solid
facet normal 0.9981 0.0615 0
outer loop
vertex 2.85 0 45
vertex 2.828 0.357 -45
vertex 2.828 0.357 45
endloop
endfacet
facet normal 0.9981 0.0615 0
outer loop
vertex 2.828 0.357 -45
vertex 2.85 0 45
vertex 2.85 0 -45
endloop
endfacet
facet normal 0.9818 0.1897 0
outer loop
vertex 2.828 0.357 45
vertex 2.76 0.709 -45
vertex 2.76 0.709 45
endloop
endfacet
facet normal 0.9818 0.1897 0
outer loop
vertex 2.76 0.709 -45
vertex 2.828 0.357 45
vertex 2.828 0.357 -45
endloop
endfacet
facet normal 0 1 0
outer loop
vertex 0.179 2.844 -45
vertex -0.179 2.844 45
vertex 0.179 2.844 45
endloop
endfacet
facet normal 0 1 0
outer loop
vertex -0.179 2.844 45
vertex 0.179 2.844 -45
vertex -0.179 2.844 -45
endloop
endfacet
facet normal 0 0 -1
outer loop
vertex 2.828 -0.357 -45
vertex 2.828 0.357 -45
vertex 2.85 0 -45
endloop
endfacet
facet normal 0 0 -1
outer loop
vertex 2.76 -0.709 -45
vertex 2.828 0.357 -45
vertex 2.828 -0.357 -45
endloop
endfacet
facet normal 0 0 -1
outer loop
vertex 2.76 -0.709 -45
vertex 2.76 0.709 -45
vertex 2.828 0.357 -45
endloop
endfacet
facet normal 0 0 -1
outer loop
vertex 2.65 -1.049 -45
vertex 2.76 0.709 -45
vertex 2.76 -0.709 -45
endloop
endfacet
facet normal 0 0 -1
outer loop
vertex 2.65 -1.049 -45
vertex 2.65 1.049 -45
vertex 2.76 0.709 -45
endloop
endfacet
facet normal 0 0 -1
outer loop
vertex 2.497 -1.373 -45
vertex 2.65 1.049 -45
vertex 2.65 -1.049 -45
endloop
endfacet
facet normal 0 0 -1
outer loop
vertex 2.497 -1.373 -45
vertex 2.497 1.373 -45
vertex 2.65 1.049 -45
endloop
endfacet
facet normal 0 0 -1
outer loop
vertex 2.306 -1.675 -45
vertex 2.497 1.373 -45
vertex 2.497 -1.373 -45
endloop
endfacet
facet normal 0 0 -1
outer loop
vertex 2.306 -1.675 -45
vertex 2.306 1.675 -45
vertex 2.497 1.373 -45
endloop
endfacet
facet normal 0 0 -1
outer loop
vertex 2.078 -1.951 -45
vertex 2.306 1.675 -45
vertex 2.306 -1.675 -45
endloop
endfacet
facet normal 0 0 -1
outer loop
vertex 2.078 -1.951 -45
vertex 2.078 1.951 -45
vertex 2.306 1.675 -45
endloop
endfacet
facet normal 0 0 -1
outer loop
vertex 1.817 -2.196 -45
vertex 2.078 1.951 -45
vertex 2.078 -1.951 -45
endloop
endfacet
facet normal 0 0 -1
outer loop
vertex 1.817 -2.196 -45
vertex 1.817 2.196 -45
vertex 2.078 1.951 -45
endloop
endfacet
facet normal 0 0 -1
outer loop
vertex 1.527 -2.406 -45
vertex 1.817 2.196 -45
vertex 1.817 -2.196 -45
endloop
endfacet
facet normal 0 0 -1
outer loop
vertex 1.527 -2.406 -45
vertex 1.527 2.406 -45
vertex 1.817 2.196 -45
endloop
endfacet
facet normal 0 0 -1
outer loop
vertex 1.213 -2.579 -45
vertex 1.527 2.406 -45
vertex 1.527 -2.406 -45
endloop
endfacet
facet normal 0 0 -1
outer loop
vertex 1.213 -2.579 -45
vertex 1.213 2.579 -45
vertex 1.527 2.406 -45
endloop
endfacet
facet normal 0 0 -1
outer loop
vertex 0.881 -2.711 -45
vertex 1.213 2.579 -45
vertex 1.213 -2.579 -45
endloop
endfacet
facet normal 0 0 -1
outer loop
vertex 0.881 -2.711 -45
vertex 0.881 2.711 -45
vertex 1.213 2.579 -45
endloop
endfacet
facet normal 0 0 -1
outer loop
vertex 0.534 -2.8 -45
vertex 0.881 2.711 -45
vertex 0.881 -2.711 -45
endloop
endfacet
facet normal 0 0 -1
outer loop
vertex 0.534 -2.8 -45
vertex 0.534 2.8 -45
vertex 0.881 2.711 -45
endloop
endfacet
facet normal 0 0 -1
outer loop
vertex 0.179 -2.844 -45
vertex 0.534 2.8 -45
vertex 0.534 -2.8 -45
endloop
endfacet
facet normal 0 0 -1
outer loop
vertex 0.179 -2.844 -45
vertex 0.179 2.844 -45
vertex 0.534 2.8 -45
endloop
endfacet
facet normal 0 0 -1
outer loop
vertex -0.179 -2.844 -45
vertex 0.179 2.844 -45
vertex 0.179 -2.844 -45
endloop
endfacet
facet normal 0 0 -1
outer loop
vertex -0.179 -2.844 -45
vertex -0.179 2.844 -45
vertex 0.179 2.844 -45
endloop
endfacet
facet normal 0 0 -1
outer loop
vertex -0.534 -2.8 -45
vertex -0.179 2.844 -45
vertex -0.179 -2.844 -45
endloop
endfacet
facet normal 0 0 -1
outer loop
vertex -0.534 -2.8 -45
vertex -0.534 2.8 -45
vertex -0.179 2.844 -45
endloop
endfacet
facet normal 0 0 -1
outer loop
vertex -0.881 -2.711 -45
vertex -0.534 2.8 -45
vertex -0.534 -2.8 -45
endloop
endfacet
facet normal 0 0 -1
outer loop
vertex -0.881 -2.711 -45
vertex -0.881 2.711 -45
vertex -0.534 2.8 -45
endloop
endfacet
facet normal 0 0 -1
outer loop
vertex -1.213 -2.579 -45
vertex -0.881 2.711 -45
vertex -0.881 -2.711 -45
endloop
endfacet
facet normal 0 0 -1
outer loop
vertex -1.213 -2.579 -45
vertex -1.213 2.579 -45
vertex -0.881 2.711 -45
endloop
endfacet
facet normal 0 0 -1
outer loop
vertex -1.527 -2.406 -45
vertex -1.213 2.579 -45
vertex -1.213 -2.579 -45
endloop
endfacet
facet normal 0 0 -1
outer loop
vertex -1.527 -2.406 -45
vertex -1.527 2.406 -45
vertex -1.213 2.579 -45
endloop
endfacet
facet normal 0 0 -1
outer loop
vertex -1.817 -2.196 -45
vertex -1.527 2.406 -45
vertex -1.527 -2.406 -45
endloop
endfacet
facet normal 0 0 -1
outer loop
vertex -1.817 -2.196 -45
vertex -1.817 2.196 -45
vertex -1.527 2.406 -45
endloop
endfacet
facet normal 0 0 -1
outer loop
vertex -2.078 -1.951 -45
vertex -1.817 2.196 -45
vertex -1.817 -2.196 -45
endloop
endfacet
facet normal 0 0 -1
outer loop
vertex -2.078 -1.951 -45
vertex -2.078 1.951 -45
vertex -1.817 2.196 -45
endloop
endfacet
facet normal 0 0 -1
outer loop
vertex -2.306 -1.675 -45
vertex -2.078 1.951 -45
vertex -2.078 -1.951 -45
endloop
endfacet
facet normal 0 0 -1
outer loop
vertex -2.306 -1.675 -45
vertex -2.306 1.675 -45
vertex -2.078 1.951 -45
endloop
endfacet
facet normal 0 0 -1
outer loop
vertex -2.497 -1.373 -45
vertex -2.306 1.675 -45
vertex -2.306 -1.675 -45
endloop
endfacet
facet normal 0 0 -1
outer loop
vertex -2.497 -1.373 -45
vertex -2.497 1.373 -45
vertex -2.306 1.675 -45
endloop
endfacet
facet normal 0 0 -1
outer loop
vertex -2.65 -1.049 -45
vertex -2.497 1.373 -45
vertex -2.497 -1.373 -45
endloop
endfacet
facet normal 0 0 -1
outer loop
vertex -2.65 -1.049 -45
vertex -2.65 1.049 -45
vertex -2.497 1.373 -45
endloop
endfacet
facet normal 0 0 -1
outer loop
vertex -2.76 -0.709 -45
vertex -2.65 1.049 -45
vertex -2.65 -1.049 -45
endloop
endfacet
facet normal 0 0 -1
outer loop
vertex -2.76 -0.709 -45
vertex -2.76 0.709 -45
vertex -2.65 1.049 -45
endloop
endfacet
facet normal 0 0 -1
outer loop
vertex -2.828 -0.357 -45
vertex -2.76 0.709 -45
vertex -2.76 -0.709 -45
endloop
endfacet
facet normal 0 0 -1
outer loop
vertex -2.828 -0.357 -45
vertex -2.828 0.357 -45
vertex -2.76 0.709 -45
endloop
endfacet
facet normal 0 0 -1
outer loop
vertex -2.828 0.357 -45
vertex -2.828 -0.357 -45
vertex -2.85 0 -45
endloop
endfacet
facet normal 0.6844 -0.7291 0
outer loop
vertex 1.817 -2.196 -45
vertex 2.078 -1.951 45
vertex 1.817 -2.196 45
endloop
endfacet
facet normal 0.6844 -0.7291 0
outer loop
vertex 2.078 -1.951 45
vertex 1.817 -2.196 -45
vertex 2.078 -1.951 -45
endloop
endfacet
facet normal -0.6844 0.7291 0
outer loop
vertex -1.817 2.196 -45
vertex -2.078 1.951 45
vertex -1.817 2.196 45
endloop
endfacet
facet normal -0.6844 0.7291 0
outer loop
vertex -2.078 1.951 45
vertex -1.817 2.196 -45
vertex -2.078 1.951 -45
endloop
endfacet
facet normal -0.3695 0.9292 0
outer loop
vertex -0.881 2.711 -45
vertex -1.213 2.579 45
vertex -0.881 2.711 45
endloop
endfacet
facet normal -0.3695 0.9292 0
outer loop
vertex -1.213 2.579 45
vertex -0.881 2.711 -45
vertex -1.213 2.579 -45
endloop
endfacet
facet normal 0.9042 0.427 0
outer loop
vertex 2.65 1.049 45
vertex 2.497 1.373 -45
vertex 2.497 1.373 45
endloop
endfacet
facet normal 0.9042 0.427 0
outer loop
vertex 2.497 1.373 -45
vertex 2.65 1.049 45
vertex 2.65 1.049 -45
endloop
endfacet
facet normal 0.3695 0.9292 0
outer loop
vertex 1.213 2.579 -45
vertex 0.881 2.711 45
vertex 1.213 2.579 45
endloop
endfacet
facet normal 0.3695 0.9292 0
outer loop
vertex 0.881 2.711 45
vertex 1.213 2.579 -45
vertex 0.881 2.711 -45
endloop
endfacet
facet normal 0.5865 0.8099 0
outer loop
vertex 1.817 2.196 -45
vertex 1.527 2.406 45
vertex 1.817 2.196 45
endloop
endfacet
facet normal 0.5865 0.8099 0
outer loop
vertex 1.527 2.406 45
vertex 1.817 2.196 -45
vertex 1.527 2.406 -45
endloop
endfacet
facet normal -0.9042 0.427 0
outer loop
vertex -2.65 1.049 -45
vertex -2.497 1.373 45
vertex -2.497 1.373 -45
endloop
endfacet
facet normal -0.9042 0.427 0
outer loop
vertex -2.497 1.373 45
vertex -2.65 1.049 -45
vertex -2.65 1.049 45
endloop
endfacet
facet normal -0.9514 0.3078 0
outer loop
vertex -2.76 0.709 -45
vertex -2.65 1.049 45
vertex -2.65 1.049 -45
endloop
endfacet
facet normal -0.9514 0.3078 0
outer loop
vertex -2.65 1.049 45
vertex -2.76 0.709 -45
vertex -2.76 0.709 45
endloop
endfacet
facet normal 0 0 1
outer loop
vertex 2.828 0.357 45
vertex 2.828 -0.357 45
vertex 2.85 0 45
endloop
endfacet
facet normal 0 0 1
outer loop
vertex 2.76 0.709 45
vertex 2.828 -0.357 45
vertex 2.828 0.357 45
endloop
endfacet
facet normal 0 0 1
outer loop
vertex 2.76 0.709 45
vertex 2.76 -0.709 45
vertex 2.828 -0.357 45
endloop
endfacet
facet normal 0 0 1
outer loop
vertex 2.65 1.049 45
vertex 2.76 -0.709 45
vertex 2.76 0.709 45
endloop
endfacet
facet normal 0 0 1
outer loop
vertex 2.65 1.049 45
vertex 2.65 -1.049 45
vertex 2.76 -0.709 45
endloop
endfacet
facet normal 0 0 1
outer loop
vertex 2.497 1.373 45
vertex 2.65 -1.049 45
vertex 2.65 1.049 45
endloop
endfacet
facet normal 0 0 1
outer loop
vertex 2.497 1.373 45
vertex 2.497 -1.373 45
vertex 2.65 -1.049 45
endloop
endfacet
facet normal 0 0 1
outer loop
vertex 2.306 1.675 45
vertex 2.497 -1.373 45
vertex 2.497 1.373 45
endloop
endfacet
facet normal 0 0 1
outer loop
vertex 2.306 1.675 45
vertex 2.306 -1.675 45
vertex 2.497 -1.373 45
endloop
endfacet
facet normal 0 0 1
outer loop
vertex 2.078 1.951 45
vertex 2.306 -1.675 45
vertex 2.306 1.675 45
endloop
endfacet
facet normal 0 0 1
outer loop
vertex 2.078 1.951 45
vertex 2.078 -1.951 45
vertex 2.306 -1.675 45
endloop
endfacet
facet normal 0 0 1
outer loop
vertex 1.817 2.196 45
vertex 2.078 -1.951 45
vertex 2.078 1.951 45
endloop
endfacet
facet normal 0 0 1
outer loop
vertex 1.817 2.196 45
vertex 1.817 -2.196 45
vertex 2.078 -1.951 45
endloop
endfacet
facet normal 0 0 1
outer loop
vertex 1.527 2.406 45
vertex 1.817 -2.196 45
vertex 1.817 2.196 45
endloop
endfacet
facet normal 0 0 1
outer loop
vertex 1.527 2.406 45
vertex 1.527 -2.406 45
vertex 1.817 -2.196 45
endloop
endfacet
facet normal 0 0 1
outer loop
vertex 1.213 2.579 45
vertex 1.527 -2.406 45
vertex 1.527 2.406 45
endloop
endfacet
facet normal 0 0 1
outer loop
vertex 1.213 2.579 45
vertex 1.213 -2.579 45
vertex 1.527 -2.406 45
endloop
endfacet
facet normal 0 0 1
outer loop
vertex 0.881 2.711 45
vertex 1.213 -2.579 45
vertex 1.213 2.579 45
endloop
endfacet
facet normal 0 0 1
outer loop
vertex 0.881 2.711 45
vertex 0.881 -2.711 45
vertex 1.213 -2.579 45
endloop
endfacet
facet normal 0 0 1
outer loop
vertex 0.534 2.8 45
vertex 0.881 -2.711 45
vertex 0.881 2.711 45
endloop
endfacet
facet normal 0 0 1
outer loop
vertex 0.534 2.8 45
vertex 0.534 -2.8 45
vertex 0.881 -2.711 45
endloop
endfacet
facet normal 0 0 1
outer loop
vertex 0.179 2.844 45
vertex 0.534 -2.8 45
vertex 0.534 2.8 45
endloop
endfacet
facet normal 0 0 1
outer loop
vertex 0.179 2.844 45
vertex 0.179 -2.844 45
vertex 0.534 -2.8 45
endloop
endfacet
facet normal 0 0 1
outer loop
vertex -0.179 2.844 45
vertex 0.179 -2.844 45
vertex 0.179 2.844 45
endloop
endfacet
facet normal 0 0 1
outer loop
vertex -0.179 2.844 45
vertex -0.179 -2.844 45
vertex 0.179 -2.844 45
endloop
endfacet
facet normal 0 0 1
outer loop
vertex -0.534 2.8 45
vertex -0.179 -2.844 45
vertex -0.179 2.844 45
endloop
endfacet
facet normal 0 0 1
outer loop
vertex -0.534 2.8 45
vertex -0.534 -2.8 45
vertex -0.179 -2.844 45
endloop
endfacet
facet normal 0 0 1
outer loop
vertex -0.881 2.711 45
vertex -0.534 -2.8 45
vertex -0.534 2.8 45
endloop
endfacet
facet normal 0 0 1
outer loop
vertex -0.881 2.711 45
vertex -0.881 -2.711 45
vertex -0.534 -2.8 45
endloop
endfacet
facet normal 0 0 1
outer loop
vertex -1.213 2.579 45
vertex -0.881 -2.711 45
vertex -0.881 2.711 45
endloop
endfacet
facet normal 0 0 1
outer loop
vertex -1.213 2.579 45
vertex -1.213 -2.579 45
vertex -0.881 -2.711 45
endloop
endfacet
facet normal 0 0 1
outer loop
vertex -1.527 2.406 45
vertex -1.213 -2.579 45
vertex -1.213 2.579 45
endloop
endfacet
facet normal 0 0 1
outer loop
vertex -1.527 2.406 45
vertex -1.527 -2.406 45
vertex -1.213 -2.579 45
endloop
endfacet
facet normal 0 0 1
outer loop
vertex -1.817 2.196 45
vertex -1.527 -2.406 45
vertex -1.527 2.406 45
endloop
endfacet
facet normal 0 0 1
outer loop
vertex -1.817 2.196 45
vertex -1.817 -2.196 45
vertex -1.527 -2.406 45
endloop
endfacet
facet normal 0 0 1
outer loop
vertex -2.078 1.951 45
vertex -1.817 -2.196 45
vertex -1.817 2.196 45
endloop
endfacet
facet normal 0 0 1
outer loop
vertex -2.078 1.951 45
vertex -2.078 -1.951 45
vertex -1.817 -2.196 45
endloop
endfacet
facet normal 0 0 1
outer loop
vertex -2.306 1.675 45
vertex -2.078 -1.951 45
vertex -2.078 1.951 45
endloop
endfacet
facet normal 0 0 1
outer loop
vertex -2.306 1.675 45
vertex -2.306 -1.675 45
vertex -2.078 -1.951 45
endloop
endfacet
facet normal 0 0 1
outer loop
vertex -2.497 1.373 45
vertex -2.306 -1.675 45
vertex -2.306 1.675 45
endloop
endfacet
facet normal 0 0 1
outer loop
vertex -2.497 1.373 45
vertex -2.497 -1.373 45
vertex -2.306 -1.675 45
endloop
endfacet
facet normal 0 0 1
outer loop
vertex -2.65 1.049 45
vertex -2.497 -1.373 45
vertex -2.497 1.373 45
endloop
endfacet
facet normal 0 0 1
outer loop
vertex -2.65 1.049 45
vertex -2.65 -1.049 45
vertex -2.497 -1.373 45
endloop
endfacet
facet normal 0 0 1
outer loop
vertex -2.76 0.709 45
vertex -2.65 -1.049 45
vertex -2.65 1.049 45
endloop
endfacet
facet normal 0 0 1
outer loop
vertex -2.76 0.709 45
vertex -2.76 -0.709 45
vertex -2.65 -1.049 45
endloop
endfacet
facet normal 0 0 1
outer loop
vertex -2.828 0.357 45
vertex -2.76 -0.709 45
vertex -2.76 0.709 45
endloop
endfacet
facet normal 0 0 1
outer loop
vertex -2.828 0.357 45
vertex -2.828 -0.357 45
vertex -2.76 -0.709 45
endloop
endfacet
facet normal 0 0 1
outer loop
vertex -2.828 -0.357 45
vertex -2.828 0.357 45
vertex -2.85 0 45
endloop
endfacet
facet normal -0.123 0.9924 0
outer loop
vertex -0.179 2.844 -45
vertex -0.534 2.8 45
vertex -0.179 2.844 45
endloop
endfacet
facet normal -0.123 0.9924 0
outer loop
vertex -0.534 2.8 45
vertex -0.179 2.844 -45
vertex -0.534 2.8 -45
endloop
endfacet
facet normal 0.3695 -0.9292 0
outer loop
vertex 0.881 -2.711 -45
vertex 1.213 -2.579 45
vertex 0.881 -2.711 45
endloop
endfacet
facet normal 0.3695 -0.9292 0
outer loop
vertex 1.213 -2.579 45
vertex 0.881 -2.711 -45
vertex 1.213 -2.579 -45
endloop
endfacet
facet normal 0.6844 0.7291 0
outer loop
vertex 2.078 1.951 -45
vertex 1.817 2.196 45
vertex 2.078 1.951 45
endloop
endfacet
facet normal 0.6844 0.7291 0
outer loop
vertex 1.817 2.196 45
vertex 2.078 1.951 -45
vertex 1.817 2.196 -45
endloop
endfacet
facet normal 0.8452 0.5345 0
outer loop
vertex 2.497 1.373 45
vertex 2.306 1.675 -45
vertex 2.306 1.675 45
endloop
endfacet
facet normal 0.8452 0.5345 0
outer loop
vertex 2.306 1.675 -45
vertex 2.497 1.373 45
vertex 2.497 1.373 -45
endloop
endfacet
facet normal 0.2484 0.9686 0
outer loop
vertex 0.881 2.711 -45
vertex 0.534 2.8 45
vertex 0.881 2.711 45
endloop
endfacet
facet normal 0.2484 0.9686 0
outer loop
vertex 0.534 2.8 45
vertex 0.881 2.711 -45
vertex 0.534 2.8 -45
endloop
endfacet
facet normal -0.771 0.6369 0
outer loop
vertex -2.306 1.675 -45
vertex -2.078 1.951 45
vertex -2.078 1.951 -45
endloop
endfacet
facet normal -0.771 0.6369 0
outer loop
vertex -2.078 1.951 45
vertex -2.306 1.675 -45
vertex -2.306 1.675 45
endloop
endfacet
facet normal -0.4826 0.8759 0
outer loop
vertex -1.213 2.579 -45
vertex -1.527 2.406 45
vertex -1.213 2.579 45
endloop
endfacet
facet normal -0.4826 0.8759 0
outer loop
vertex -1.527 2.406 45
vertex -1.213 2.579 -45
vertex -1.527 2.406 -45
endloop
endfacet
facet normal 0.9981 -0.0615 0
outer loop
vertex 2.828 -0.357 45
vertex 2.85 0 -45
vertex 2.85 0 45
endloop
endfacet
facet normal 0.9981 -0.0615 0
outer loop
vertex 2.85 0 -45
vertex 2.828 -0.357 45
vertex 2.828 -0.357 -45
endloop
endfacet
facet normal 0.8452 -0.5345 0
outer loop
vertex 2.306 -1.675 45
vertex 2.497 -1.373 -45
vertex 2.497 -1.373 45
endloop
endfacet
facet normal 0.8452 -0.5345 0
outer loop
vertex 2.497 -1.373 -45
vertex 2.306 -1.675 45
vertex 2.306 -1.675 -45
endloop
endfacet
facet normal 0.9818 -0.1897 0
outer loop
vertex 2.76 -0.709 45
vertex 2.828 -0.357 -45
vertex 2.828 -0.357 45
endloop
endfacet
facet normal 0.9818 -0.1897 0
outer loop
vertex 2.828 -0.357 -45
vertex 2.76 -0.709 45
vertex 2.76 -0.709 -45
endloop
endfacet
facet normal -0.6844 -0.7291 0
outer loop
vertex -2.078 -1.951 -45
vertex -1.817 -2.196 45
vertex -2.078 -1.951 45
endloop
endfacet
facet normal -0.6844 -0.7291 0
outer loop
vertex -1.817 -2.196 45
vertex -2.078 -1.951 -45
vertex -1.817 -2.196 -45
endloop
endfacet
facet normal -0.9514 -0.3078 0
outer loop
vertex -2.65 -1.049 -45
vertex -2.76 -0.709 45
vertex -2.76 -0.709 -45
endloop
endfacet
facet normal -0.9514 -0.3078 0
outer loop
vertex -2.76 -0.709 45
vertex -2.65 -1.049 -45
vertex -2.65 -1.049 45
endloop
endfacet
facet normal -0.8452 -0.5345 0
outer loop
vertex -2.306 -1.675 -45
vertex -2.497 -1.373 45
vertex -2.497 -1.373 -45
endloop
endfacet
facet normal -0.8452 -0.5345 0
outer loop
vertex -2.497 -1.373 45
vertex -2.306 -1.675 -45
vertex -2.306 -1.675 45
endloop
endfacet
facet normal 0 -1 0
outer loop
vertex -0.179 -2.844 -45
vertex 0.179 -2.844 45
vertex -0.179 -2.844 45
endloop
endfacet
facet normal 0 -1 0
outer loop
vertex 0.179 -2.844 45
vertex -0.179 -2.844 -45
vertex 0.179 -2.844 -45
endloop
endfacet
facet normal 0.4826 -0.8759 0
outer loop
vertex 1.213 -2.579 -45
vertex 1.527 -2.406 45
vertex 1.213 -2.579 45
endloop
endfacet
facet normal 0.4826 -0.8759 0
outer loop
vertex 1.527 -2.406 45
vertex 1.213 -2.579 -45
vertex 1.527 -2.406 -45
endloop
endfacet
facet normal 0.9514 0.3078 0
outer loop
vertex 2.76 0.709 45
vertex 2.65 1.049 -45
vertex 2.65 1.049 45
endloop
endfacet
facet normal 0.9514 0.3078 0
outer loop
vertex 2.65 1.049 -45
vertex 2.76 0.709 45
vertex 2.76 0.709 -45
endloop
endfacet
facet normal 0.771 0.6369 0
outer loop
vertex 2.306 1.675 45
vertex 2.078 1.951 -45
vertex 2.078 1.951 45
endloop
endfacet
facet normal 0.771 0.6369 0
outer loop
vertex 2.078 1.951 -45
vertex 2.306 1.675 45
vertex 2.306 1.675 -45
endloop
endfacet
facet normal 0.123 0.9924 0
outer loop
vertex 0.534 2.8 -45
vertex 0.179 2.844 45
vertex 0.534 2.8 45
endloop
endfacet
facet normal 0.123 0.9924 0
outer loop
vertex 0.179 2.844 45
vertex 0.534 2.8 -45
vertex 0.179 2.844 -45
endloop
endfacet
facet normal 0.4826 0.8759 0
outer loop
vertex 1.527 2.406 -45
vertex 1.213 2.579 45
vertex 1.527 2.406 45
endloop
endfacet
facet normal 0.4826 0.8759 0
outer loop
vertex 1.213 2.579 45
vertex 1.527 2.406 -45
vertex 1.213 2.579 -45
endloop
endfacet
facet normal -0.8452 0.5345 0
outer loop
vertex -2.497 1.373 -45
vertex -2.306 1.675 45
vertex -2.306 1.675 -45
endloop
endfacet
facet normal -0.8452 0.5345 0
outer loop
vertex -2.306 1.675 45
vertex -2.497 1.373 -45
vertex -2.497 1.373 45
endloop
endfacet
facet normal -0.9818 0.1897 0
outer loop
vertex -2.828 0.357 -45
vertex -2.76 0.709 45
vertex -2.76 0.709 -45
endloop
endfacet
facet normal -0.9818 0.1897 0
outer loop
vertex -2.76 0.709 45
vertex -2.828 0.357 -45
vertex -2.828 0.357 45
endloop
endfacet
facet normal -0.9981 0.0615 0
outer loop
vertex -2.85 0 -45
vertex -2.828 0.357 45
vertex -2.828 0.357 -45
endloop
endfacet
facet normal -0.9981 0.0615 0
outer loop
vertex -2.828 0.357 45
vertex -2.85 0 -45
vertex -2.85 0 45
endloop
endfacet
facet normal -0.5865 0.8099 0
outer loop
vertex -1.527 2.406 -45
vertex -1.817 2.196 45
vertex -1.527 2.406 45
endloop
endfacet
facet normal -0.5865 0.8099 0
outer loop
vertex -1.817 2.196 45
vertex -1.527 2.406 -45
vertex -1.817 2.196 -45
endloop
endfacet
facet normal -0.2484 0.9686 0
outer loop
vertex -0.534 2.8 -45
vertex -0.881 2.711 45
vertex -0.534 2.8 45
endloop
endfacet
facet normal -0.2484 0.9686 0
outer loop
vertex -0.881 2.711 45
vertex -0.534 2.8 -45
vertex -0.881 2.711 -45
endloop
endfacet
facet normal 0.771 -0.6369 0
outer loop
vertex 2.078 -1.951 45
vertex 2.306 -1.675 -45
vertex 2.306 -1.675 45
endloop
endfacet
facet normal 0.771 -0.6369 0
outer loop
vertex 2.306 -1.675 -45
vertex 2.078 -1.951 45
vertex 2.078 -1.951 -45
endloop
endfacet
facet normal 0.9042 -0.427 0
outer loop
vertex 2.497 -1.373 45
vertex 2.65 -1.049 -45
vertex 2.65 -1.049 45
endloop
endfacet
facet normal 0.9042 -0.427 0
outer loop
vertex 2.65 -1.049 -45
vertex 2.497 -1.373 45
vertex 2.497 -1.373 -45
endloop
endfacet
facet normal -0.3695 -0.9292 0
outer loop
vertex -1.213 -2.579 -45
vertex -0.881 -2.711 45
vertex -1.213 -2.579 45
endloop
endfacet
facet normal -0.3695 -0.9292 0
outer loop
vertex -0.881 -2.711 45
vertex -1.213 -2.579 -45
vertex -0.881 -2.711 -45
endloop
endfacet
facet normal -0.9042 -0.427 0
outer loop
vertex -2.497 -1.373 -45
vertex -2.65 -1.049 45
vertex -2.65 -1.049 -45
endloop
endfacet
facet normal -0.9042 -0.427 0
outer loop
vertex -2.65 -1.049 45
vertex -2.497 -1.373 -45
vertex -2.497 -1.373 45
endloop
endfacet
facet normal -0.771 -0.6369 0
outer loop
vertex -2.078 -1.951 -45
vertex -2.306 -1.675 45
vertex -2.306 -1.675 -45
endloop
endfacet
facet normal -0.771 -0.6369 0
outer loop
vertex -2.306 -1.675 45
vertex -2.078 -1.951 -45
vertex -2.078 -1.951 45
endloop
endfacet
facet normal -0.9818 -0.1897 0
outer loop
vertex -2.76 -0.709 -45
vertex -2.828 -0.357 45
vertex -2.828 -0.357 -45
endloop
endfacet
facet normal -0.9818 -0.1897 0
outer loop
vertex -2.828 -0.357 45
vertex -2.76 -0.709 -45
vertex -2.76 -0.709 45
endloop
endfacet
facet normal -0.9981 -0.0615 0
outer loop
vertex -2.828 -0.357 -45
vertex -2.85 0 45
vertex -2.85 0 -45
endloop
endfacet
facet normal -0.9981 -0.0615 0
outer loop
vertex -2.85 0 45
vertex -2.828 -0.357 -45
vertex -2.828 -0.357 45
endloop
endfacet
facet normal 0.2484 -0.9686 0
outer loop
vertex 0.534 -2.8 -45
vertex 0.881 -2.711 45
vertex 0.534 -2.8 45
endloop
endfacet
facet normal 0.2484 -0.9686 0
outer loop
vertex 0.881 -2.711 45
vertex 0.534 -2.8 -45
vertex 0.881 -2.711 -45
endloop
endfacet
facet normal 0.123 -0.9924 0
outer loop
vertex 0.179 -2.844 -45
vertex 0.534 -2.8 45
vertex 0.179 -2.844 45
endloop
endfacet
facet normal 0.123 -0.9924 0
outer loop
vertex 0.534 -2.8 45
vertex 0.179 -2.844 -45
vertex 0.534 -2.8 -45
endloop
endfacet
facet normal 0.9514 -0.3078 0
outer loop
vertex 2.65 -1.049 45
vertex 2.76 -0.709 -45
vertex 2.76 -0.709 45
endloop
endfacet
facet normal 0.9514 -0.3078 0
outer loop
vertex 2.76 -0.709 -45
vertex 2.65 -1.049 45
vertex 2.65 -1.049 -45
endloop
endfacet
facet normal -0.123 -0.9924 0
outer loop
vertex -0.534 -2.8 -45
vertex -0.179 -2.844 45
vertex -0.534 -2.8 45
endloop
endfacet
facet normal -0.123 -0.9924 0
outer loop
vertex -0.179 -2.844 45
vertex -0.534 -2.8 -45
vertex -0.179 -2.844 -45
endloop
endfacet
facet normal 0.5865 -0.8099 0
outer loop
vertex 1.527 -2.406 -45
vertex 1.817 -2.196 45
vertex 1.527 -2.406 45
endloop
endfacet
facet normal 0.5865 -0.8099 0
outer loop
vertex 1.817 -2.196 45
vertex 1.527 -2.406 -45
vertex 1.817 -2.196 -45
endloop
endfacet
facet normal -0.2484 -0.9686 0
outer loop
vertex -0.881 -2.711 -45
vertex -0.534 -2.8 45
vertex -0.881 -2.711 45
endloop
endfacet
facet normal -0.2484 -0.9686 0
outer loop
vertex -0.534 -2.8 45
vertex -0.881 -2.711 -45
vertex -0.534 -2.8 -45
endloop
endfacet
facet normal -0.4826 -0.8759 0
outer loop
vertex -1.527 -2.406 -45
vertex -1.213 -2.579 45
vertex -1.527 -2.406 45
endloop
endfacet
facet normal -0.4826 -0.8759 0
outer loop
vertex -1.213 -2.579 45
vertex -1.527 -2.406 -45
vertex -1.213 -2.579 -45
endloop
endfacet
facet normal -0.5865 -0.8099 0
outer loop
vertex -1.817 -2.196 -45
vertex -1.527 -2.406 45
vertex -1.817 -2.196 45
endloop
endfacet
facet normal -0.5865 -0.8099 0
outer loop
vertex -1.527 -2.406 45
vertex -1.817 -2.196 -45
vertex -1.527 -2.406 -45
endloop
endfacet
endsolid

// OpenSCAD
$fn = 50;


difference() {
	union() {
		translate(v = [0, 0, -45.0000000000]) {
			cylinder(h = 90, r = 2.8500000000);
		}
	}
	union() {
		translate(v = [0, 0, -100.0000000000]) {
			cylinder(h = 200, r = 0);
		}
	}
}
